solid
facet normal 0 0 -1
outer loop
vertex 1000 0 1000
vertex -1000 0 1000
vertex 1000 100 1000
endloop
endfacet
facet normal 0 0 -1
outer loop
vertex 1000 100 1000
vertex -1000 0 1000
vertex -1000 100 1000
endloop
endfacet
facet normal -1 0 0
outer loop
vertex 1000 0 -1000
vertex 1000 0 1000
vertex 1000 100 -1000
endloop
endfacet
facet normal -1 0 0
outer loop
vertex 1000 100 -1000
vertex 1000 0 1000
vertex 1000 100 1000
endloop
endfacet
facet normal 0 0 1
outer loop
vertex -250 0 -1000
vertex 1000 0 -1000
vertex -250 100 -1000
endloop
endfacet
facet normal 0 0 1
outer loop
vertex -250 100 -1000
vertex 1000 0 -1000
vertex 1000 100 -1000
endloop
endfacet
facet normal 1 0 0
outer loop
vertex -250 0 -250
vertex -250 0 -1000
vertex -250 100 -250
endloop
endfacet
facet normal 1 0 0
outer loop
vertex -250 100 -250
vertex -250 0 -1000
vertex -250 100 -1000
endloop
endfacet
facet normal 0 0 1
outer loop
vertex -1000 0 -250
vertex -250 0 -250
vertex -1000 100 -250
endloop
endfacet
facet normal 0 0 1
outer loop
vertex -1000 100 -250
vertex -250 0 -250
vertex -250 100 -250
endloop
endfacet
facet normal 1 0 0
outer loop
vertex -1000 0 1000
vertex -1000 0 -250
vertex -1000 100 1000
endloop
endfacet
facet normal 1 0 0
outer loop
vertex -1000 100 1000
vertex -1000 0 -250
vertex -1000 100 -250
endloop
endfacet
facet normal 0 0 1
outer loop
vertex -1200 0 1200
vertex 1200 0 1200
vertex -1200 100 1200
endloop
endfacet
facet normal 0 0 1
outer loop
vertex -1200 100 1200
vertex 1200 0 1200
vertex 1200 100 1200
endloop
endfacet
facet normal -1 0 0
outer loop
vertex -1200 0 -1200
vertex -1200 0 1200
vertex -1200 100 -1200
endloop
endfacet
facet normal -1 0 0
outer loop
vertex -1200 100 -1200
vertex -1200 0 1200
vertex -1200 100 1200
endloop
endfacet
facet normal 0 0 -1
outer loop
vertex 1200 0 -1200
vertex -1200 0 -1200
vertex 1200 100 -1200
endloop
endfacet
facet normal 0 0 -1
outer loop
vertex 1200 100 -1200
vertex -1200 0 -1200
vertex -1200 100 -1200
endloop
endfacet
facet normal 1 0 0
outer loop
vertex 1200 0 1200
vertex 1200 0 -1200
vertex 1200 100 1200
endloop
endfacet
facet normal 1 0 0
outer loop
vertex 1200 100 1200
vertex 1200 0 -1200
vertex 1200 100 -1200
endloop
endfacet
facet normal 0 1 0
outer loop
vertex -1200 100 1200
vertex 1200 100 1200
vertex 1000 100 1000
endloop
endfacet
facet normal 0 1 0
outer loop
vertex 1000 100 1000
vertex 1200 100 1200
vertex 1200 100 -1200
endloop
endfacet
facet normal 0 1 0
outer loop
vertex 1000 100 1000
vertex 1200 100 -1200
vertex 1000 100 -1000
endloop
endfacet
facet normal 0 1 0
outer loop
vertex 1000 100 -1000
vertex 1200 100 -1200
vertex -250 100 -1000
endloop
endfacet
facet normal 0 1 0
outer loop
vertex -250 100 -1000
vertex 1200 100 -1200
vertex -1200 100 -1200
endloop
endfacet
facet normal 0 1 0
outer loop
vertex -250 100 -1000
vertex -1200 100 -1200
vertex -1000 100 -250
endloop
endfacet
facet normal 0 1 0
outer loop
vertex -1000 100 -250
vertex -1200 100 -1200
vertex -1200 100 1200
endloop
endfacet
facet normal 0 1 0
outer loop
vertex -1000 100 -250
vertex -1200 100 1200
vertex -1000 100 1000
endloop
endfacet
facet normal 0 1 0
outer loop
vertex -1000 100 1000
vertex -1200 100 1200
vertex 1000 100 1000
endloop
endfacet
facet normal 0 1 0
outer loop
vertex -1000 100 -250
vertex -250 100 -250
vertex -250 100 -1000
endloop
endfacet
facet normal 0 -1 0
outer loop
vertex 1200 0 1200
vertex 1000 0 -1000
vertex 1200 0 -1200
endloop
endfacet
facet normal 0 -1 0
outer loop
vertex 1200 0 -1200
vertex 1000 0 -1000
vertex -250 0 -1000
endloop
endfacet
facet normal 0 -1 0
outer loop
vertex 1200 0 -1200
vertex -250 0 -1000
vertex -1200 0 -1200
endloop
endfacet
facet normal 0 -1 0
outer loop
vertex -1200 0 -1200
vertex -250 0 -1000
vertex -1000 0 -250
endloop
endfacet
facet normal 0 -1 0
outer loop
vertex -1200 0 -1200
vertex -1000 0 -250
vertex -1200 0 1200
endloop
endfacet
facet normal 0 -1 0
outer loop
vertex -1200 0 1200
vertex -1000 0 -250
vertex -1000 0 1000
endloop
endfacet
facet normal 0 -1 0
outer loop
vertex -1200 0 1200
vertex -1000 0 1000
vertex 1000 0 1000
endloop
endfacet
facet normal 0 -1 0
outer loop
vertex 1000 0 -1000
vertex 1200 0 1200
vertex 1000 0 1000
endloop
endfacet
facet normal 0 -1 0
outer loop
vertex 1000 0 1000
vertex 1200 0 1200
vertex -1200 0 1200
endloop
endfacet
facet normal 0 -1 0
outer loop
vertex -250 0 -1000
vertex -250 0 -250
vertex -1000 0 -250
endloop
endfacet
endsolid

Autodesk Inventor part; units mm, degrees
ref_plane "YZ Plane" through (0, 0, 0) normal (1, 0, 0) x (0, 1, 0)
ref_plane "XZ Plane" through (0, 0, 0) normal (0, 1, 0) x (-1, 0, 0)
ref_plane "XY Plane" through (0, 0, 0) normal (0, 0, 1) x (1, 0, 0)
sketch "Sketch1" plane through (0, 0, 0) normal (0, 1, 0) x (-1, 0, 0)
  line L0 (1200, 1200) -> (-1200, 1200)
  line L1 (-1200, 1200) -> (-1200, -1200)
  line L2 (-1200, -1200) -> (1200, -1200)
  line L3 (1200, -1200) -> (1200, 1200)
  line L4 (1200, 1200) -> (-1200, -1200) construction
  line L5 (-1200, 1200) -> (1200, -1200) construction
  line L6 (1000, 1000) -> (1000, -250)
  line L7 (1000, 1000) -> (2250, 1000) construction
  line L8 (1000, -250) -> (250, -250)
  line L9 (250, -250) -> (250, -1000)
  line L10 (250, -1000) -> (-1000, -1000)
  line L11 (-1000, -1000) -> (-1000, 1000)
  line L12 (-1000, 1000) -> (1000, 1000)
  point P0 (0, 0)
  dimension "d0" = 2400
  dimension "d1" = 2400
  dimension "d2" = 1250
  dimension "d3" = 90
  dimension "d4" = 750
  dimension "d5" = 750
  dimension "d6" = 1250
  dimension "d7" = 2000
extrude "Extrusion1" add sketch "Sketch1" along normal blind 100
properties part number "single_meas"
